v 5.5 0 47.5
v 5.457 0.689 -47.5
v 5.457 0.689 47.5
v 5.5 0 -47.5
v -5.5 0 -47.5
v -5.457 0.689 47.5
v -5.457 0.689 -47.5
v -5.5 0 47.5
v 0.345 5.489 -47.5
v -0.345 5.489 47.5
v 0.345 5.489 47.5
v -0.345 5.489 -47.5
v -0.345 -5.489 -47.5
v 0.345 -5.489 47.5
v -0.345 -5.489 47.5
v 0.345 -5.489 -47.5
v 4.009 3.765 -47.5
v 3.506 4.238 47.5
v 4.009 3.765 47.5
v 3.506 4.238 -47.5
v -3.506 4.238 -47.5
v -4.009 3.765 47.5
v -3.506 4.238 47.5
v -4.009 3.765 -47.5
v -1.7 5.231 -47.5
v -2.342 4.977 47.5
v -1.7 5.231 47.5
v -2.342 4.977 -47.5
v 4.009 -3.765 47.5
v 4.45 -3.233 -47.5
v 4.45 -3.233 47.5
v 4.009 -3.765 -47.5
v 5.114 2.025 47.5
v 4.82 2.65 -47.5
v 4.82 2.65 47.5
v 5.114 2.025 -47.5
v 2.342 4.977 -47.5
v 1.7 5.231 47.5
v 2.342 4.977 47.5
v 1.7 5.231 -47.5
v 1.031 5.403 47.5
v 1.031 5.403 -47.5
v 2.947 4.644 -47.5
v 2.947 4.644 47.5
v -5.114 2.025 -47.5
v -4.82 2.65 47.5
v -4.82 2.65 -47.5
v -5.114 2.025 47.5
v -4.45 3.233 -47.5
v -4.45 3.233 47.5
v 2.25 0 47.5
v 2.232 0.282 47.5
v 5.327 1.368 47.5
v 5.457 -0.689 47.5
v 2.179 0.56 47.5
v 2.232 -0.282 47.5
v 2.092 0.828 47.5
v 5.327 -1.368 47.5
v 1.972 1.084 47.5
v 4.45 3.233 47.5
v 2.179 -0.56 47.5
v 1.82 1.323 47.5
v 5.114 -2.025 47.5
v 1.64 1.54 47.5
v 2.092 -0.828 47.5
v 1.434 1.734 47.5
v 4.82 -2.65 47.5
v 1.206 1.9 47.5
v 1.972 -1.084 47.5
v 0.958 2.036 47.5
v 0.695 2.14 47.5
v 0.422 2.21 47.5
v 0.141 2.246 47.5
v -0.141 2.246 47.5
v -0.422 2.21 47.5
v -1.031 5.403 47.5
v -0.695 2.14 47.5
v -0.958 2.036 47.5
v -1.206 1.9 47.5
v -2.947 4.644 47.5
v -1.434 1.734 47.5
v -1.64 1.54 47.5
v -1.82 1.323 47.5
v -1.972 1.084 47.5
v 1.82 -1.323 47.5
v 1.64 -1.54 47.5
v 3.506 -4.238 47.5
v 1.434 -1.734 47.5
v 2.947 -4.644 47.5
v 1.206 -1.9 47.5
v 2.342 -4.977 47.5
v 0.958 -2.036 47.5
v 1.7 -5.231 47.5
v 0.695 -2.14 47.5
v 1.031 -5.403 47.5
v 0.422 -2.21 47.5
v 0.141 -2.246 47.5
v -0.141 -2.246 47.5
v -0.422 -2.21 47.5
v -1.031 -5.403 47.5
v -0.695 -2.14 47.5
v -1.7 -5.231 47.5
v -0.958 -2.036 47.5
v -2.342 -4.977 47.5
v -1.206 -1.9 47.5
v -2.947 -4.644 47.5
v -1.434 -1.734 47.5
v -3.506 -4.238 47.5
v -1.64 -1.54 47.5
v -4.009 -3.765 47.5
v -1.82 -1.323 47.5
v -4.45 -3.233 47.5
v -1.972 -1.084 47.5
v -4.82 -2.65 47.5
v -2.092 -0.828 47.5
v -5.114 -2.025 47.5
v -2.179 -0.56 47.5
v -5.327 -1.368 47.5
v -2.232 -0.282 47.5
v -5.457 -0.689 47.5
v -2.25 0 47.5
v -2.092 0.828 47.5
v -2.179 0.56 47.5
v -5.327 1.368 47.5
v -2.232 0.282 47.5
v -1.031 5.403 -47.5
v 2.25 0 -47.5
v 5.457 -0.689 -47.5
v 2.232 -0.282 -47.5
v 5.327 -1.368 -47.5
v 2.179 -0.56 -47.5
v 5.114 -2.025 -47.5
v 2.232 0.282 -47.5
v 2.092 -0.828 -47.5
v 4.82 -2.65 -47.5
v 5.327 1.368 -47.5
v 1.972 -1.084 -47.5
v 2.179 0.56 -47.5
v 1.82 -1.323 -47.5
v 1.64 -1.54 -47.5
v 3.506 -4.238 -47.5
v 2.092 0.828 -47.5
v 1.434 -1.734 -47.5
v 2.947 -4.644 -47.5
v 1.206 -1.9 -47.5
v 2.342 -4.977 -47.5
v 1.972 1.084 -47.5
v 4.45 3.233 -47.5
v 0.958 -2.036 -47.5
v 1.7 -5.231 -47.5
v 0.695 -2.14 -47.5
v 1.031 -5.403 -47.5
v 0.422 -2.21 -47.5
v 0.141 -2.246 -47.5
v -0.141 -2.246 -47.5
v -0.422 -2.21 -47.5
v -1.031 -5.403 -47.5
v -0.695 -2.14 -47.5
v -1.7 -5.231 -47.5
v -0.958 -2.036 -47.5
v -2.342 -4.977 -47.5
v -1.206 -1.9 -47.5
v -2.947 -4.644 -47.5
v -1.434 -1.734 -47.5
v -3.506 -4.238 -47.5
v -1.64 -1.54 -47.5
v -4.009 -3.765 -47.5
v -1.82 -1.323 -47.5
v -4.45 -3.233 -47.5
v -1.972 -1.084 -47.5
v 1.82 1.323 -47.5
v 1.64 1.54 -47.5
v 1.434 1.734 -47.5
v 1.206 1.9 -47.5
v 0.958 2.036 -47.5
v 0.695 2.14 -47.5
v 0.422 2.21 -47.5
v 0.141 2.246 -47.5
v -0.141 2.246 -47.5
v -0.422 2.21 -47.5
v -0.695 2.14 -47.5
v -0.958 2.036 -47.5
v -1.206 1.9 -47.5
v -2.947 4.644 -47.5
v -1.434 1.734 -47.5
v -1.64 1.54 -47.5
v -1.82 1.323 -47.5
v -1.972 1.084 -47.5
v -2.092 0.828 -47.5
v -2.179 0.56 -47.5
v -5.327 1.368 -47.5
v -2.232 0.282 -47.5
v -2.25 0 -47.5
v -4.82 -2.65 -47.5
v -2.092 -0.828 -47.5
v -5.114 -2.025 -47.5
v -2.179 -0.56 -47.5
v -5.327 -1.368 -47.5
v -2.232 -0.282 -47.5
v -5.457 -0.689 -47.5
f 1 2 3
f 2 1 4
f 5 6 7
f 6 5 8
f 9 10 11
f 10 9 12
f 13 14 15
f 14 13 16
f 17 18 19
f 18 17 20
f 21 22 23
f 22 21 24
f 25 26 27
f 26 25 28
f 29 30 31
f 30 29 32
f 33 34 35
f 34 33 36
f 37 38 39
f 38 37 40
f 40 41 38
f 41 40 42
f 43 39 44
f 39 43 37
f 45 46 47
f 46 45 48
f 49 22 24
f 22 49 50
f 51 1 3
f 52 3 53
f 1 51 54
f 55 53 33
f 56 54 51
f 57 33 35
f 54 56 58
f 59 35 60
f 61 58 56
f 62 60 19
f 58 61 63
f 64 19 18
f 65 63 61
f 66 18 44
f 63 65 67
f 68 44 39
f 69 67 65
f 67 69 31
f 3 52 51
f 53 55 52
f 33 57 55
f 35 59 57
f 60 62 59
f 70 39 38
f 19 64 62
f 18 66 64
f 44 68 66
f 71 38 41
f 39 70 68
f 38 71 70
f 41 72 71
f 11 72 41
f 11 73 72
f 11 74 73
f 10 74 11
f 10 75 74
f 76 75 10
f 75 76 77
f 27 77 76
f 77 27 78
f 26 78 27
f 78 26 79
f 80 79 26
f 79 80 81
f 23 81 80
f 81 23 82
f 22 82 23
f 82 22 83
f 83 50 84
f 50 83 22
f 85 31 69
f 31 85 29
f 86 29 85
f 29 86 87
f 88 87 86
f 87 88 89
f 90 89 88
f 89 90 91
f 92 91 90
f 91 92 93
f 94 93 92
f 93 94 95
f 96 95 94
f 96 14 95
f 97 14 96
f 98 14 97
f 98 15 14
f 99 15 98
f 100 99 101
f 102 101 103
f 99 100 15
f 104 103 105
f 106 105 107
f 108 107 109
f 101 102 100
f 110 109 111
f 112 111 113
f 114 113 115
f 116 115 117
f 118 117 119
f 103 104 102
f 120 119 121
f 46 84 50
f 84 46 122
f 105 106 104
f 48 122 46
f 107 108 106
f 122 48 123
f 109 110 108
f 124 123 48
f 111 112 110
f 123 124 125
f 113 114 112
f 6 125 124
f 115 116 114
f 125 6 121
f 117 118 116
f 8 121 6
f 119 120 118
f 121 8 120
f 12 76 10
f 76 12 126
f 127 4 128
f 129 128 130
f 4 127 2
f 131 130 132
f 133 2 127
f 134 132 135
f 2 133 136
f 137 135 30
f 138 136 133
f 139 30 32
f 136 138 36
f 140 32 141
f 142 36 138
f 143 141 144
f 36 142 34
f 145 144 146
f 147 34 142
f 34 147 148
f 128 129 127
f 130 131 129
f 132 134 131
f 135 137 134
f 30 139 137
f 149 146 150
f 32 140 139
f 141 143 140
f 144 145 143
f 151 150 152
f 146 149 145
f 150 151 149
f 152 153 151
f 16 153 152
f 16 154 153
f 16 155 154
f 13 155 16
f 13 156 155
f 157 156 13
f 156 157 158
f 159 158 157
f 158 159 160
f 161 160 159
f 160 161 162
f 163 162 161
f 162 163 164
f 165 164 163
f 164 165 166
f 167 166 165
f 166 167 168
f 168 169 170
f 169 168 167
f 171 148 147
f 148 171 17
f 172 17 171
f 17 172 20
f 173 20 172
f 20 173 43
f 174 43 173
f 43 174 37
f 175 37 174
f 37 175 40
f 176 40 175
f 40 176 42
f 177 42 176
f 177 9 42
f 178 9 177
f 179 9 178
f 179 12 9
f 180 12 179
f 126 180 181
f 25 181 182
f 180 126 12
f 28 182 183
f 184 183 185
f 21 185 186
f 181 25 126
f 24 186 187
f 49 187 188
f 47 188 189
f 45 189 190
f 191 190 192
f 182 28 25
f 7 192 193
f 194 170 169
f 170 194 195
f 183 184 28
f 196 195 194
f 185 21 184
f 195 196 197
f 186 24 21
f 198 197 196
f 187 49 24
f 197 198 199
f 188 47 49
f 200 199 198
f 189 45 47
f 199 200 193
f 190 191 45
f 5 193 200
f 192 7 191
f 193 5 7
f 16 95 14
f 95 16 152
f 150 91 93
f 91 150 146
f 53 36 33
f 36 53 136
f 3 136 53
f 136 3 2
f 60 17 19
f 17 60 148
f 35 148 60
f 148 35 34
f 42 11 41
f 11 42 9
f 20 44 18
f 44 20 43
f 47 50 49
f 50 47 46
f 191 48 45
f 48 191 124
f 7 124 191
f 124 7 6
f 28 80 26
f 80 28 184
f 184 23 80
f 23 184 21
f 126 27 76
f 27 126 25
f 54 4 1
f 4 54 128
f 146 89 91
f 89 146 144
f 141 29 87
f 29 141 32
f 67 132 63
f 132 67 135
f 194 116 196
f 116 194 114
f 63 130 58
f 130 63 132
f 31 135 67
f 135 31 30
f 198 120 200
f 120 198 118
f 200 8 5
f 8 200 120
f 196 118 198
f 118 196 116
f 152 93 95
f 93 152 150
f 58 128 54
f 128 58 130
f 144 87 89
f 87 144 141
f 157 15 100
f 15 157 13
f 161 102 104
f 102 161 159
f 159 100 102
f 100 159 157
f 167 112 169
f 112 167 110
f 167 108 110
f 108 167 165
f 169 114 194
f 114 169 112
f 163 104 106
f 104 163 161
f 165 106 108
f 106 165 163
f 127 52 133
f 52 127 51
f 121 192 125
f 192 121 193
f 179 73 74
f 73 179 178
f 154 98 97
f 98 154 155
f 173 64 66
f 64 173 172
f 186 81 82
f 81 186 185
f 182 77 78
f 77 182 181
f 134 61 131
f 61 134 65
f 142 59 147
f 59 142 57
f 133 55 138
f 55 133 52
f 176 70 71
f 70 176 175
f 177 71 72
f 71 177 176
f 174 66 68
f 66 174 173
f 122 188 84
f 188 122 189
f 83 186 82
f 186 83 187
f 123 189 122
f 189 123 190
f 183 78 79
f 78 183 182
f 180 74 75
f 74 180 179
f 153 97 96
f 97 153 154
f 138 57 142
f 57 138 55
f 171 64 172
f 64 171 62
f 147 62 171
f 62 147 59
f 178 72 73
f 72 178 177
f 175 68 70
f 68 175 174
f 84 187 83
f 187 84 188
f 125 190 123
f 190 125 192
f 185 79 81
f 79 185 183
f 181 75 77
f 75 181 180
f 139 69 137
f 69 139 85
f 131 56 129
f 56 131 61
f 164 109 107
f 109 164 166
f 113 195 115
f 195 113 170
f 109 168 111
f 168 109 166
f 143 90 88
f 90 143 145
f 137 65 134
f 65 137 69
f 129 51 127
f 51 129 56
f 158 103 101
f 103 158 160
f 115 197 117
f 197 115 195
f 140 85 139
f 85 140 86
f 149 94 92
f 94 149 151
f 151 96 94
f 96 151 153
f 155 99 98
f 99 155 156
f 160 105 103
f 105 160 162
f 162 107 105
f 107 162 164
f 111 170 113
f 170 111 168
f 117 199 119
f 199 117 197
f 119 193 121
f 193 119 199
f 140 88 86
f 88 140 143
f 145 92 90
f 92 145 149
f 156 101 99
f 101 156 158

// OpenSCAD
$fn = 50;


difference() {
	union() {
		translate(v = [0, 0, -47.5000000000]) {
			cylinder(h = 95, r = 5.5000000000);
		}
	}
	union() {
		translate(v = [0, 0, -100.0000000000]) {
			cylinder(h = 200, r = 2.2500000000);
		}
	}
}
